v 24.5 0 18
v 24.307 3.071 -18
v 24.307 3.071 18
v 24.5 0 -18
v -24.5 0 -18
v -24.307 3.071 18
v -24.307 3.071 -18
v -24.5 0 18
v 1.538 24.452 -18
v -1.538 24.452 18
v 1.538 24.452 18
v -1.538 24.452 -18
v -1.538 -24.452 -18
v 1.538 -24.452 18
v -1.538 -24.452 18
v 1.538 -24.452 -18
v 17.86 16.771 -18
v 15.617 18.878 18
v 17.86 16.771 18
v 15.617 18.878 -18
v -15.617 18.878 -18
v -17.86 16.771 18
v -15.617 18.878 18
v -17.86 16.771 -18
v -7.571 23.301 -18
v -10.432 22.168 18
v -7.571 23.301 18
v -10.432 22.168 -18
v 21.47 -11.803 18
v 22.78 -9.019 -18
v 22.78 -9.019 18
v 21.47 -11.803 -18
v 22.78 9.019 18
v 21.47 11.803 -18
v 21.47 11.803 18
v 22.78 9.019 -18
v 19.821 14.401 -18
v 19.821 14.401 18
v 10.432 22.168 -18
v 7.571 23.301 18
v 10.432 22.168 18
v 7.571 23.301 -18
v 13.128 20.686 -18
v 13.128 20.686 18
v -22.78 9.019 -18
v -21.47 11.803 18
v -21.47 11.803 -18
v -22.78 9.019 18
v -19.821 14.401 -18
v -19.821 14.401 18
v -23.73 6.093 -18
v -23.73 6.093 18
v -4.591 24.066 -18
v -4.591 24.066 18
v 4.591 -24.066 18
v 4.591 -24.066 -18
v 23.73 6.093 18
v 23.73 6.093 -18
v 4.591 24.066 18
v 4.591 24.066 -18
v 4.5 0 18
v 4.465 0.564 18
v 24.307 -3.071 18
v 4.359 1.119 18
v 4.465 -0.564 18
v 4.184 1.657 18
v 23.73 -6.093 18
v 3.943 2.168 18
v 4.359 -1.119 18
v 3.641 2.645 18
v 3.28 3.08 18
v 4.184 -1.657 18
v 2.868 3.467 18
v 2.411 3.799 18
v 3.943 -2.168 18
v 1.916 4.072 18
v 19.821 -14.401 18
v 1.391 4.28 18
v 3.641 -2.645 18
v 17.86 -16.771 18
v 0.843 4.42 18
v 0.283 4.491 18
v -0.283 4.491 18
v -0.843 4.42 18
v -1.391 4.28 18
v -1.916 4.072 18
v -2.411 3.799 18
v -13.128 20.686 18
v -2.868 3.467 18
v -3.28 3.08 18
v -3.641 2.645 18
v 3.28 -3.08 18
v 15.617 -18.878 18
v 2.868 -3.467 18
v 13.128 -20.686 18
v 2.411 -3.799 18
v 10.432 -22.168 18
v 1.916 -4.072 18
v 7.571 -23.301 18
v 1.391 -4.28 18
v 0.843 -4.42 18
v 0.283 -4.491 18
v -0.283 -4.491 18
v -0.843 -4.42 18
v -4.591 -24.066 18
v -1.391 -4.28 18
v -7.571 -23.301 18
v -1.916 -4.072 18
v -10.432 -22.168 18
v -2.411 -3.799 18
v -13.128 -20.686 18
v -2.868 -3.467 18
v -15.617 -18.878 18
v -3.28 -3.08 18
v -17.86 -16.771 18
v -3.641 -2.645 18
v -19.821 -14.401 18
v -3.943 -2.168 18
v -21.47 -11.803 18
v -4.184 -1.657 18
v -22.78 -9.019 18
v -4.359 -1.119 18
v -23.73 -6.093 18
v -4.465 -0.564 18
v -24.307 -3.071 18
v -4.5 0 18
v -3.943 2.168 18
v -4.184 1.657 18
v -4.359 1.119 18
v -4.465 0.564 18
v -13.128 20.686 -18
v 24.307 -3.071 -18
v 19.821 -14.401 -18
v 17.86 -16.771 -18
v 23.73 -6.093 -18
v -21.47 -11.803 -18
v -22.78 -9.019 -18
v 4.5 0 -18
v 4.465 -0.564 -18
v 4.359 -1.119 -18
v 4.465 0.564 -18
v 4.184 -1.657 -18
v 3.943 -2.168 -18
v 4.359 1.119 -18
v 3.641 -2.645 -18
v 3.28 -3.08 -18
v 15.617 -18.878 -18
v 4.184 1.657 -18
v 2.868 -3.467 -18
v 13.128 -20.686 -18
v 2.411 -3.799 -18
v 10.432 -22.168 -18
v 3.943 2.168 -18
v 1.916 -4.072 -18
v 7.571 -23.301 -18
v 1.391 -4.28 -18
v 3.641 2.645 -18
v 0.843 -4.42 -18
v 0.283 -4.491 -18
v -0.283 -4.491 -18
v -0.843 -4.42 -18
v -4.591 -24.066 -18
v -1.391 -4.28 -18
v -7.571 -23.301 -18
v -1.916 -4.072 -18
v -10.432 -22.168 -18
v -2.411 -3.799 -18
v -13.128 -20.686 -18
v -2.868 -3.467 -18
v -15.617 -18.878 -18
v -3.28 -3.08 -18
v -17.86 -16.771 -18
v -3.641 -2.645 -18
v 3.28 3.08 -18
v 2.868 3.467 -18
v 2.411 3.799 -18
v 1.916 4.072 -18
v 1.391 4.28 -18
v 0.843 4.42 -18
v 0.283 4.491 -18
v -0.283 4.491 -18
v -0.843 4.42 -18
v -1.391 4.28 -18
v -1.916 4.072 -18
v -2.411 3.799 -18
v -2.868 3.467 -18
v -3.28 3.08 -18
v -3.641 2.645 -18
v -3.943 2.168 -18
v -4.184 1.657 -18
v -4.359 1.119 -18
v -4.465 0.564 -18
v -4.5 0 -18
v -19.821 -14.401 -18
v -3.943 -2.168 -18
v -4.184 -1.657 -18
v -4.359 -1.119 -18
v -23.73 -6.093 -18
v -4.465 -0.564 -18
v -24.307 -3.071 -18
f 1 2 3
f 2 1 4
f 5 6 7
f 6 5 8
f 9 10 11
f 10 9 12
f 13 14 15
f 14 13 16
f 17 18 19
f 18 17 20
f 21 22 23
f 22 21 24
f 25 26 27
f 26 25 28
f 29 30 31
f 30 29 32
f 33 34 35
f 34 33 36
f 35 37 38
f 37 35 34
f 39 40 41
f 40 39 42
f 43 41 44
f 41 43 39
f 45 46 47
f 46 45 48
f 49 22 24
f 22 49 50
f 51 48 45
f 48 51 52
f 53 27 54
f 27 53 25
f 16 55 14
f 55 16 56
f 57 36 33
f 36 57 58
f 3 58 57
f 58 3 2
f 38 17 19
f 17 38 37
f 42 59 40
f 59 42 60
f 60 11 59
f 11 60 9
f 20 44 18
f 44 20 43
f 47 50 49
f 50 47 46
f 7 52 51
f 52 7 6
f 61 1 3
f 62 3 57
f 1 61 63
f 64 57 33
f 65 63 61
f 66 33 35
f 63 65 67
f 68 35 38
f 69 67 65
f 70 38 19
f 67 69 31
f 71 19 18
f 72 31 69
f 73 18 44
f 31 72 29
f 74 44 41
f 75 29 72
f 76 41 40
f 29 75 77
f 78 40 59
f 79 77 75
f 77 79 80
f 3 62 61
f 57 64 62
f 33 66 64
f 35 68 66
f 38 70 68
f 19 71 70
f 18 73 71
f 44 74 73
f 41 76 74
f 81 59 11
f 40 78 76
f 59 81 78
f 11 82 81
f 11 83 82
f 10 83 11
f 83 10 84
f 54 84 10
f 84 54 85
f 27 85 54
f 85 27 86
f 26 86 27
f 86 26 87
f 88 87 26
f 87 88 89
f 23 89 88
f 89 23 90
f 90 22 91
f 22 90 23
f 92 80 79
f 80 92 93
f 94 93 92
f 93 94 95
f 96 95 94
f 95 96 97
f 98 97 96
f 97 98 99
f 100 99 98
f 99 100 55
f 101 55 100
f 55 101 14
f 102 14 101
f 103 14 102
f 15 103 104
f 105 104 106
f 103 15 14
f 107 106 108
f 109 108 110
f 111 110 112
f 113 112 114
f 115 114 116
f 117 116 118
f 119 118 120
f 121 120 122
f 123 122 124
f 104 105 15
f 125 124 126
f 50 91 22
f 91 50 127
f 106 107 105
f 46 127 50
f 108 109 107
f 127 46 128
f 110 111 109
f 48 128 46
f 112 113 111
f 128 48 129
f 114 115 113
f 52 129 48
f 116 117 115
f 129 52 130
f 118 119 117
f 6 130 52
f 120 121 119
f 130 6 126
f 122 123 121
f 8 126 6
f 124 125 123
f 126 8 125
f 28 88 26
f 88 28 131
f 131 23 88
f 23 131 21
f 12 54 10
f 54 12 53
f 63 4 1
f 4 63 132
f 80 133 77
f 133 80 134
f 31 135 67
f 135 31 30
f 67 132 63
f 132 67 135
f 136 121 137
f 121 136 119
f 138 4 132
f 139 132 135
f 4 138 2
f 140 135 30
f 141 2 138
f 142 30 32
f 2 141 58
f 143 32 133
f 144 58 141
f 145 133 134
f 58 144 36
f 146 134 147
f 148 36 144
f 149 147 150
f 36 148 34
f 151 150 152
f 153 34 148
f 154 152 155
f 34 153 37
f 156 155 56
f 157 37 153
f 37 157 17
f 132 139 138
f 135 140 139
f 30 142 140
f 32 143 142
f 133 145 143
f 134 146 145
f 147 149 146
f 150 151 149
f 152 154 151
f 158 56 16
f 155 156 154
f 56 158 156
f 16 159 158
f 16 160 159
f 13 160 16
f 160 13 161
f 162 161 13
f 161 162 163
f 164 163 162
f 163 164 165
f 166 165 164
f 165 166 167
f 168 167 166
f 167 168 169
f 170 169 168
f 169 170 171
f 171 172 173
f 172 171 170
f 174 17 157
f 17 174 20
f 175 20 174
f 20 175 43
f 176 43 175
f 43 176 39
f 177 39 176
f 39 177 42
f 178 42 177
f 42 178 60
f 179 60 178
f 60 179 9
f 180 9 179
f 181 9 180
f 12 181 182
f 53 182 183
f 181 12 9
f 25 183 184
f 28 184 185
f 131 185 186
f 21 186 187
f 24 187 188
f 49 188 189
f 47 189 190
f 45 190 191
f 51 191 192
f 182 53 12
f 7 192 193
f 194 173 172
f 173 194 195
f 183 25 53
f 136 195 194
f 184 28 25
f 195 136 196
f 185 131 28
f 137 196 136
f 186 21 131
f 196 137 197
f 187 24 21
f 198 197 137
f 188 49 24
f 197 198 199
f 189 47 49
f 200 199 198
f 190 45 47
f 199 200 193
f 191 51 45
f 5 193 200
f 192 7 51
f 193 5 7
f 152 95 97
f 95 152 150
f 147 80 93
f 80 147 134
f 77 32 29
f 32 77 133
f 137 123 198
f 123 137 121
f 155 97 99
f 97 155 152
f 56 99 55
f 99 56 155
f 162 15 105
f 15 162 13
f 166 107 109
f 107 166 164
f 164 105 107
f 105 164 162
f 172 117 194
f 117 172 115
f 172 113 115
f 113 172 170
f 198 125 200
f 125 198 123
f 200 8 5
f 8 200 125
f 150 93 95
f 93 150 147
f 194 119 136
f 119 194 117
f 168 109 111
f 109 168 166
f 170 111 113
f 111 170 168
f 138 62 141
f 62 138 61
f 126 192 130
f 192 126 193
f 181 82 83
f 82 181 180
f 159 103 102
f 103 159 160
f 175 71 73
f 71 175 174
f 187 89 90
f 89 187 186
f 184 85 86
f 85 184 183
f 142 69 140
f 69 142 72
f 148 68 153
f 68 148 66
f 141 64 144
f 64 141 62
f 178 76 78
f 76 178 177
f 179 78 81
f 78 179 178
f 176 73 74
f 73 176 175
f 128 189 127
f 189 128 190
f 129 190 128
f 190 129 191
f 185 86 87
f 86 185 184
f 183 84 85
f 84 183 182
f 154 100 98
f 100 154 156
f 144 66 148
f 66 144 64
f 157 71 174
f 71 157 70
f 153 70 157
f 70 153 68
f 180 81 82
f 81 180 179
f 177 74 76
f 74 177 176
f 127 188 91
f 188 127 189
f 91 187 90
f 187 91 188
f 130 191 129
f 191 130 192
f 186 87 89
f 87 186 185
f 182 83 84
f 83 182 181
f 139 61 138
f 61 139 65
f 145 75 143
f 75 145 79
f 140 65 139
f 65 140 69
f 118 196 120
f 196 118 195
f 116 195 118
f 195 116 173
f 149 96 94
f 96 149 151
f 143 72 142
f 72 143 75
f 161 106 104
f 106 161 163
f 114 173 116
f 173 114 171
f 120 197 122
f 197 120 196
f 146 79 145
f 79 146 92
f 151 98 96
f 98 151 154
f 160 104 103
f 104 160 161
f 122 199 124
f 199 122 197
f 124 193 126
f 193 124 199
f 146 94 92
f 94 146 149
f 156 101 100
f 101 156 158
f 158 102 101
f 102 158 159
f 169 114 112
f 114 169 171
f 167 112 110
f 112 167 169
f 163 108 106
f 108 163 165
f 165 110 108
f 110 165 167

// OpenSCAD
$fn = 50;


difference() {
	union() {
		translate(v = [0, 0, -18.0000000000]) {
			cylinder(h = 36, r = 24.5000000000);
		}
	}
	union() {
		translate(v = [0, 0, -100.0000000000]) {
			cylinder(h = 200, r = 4.5000000000);
		}
	}
}
